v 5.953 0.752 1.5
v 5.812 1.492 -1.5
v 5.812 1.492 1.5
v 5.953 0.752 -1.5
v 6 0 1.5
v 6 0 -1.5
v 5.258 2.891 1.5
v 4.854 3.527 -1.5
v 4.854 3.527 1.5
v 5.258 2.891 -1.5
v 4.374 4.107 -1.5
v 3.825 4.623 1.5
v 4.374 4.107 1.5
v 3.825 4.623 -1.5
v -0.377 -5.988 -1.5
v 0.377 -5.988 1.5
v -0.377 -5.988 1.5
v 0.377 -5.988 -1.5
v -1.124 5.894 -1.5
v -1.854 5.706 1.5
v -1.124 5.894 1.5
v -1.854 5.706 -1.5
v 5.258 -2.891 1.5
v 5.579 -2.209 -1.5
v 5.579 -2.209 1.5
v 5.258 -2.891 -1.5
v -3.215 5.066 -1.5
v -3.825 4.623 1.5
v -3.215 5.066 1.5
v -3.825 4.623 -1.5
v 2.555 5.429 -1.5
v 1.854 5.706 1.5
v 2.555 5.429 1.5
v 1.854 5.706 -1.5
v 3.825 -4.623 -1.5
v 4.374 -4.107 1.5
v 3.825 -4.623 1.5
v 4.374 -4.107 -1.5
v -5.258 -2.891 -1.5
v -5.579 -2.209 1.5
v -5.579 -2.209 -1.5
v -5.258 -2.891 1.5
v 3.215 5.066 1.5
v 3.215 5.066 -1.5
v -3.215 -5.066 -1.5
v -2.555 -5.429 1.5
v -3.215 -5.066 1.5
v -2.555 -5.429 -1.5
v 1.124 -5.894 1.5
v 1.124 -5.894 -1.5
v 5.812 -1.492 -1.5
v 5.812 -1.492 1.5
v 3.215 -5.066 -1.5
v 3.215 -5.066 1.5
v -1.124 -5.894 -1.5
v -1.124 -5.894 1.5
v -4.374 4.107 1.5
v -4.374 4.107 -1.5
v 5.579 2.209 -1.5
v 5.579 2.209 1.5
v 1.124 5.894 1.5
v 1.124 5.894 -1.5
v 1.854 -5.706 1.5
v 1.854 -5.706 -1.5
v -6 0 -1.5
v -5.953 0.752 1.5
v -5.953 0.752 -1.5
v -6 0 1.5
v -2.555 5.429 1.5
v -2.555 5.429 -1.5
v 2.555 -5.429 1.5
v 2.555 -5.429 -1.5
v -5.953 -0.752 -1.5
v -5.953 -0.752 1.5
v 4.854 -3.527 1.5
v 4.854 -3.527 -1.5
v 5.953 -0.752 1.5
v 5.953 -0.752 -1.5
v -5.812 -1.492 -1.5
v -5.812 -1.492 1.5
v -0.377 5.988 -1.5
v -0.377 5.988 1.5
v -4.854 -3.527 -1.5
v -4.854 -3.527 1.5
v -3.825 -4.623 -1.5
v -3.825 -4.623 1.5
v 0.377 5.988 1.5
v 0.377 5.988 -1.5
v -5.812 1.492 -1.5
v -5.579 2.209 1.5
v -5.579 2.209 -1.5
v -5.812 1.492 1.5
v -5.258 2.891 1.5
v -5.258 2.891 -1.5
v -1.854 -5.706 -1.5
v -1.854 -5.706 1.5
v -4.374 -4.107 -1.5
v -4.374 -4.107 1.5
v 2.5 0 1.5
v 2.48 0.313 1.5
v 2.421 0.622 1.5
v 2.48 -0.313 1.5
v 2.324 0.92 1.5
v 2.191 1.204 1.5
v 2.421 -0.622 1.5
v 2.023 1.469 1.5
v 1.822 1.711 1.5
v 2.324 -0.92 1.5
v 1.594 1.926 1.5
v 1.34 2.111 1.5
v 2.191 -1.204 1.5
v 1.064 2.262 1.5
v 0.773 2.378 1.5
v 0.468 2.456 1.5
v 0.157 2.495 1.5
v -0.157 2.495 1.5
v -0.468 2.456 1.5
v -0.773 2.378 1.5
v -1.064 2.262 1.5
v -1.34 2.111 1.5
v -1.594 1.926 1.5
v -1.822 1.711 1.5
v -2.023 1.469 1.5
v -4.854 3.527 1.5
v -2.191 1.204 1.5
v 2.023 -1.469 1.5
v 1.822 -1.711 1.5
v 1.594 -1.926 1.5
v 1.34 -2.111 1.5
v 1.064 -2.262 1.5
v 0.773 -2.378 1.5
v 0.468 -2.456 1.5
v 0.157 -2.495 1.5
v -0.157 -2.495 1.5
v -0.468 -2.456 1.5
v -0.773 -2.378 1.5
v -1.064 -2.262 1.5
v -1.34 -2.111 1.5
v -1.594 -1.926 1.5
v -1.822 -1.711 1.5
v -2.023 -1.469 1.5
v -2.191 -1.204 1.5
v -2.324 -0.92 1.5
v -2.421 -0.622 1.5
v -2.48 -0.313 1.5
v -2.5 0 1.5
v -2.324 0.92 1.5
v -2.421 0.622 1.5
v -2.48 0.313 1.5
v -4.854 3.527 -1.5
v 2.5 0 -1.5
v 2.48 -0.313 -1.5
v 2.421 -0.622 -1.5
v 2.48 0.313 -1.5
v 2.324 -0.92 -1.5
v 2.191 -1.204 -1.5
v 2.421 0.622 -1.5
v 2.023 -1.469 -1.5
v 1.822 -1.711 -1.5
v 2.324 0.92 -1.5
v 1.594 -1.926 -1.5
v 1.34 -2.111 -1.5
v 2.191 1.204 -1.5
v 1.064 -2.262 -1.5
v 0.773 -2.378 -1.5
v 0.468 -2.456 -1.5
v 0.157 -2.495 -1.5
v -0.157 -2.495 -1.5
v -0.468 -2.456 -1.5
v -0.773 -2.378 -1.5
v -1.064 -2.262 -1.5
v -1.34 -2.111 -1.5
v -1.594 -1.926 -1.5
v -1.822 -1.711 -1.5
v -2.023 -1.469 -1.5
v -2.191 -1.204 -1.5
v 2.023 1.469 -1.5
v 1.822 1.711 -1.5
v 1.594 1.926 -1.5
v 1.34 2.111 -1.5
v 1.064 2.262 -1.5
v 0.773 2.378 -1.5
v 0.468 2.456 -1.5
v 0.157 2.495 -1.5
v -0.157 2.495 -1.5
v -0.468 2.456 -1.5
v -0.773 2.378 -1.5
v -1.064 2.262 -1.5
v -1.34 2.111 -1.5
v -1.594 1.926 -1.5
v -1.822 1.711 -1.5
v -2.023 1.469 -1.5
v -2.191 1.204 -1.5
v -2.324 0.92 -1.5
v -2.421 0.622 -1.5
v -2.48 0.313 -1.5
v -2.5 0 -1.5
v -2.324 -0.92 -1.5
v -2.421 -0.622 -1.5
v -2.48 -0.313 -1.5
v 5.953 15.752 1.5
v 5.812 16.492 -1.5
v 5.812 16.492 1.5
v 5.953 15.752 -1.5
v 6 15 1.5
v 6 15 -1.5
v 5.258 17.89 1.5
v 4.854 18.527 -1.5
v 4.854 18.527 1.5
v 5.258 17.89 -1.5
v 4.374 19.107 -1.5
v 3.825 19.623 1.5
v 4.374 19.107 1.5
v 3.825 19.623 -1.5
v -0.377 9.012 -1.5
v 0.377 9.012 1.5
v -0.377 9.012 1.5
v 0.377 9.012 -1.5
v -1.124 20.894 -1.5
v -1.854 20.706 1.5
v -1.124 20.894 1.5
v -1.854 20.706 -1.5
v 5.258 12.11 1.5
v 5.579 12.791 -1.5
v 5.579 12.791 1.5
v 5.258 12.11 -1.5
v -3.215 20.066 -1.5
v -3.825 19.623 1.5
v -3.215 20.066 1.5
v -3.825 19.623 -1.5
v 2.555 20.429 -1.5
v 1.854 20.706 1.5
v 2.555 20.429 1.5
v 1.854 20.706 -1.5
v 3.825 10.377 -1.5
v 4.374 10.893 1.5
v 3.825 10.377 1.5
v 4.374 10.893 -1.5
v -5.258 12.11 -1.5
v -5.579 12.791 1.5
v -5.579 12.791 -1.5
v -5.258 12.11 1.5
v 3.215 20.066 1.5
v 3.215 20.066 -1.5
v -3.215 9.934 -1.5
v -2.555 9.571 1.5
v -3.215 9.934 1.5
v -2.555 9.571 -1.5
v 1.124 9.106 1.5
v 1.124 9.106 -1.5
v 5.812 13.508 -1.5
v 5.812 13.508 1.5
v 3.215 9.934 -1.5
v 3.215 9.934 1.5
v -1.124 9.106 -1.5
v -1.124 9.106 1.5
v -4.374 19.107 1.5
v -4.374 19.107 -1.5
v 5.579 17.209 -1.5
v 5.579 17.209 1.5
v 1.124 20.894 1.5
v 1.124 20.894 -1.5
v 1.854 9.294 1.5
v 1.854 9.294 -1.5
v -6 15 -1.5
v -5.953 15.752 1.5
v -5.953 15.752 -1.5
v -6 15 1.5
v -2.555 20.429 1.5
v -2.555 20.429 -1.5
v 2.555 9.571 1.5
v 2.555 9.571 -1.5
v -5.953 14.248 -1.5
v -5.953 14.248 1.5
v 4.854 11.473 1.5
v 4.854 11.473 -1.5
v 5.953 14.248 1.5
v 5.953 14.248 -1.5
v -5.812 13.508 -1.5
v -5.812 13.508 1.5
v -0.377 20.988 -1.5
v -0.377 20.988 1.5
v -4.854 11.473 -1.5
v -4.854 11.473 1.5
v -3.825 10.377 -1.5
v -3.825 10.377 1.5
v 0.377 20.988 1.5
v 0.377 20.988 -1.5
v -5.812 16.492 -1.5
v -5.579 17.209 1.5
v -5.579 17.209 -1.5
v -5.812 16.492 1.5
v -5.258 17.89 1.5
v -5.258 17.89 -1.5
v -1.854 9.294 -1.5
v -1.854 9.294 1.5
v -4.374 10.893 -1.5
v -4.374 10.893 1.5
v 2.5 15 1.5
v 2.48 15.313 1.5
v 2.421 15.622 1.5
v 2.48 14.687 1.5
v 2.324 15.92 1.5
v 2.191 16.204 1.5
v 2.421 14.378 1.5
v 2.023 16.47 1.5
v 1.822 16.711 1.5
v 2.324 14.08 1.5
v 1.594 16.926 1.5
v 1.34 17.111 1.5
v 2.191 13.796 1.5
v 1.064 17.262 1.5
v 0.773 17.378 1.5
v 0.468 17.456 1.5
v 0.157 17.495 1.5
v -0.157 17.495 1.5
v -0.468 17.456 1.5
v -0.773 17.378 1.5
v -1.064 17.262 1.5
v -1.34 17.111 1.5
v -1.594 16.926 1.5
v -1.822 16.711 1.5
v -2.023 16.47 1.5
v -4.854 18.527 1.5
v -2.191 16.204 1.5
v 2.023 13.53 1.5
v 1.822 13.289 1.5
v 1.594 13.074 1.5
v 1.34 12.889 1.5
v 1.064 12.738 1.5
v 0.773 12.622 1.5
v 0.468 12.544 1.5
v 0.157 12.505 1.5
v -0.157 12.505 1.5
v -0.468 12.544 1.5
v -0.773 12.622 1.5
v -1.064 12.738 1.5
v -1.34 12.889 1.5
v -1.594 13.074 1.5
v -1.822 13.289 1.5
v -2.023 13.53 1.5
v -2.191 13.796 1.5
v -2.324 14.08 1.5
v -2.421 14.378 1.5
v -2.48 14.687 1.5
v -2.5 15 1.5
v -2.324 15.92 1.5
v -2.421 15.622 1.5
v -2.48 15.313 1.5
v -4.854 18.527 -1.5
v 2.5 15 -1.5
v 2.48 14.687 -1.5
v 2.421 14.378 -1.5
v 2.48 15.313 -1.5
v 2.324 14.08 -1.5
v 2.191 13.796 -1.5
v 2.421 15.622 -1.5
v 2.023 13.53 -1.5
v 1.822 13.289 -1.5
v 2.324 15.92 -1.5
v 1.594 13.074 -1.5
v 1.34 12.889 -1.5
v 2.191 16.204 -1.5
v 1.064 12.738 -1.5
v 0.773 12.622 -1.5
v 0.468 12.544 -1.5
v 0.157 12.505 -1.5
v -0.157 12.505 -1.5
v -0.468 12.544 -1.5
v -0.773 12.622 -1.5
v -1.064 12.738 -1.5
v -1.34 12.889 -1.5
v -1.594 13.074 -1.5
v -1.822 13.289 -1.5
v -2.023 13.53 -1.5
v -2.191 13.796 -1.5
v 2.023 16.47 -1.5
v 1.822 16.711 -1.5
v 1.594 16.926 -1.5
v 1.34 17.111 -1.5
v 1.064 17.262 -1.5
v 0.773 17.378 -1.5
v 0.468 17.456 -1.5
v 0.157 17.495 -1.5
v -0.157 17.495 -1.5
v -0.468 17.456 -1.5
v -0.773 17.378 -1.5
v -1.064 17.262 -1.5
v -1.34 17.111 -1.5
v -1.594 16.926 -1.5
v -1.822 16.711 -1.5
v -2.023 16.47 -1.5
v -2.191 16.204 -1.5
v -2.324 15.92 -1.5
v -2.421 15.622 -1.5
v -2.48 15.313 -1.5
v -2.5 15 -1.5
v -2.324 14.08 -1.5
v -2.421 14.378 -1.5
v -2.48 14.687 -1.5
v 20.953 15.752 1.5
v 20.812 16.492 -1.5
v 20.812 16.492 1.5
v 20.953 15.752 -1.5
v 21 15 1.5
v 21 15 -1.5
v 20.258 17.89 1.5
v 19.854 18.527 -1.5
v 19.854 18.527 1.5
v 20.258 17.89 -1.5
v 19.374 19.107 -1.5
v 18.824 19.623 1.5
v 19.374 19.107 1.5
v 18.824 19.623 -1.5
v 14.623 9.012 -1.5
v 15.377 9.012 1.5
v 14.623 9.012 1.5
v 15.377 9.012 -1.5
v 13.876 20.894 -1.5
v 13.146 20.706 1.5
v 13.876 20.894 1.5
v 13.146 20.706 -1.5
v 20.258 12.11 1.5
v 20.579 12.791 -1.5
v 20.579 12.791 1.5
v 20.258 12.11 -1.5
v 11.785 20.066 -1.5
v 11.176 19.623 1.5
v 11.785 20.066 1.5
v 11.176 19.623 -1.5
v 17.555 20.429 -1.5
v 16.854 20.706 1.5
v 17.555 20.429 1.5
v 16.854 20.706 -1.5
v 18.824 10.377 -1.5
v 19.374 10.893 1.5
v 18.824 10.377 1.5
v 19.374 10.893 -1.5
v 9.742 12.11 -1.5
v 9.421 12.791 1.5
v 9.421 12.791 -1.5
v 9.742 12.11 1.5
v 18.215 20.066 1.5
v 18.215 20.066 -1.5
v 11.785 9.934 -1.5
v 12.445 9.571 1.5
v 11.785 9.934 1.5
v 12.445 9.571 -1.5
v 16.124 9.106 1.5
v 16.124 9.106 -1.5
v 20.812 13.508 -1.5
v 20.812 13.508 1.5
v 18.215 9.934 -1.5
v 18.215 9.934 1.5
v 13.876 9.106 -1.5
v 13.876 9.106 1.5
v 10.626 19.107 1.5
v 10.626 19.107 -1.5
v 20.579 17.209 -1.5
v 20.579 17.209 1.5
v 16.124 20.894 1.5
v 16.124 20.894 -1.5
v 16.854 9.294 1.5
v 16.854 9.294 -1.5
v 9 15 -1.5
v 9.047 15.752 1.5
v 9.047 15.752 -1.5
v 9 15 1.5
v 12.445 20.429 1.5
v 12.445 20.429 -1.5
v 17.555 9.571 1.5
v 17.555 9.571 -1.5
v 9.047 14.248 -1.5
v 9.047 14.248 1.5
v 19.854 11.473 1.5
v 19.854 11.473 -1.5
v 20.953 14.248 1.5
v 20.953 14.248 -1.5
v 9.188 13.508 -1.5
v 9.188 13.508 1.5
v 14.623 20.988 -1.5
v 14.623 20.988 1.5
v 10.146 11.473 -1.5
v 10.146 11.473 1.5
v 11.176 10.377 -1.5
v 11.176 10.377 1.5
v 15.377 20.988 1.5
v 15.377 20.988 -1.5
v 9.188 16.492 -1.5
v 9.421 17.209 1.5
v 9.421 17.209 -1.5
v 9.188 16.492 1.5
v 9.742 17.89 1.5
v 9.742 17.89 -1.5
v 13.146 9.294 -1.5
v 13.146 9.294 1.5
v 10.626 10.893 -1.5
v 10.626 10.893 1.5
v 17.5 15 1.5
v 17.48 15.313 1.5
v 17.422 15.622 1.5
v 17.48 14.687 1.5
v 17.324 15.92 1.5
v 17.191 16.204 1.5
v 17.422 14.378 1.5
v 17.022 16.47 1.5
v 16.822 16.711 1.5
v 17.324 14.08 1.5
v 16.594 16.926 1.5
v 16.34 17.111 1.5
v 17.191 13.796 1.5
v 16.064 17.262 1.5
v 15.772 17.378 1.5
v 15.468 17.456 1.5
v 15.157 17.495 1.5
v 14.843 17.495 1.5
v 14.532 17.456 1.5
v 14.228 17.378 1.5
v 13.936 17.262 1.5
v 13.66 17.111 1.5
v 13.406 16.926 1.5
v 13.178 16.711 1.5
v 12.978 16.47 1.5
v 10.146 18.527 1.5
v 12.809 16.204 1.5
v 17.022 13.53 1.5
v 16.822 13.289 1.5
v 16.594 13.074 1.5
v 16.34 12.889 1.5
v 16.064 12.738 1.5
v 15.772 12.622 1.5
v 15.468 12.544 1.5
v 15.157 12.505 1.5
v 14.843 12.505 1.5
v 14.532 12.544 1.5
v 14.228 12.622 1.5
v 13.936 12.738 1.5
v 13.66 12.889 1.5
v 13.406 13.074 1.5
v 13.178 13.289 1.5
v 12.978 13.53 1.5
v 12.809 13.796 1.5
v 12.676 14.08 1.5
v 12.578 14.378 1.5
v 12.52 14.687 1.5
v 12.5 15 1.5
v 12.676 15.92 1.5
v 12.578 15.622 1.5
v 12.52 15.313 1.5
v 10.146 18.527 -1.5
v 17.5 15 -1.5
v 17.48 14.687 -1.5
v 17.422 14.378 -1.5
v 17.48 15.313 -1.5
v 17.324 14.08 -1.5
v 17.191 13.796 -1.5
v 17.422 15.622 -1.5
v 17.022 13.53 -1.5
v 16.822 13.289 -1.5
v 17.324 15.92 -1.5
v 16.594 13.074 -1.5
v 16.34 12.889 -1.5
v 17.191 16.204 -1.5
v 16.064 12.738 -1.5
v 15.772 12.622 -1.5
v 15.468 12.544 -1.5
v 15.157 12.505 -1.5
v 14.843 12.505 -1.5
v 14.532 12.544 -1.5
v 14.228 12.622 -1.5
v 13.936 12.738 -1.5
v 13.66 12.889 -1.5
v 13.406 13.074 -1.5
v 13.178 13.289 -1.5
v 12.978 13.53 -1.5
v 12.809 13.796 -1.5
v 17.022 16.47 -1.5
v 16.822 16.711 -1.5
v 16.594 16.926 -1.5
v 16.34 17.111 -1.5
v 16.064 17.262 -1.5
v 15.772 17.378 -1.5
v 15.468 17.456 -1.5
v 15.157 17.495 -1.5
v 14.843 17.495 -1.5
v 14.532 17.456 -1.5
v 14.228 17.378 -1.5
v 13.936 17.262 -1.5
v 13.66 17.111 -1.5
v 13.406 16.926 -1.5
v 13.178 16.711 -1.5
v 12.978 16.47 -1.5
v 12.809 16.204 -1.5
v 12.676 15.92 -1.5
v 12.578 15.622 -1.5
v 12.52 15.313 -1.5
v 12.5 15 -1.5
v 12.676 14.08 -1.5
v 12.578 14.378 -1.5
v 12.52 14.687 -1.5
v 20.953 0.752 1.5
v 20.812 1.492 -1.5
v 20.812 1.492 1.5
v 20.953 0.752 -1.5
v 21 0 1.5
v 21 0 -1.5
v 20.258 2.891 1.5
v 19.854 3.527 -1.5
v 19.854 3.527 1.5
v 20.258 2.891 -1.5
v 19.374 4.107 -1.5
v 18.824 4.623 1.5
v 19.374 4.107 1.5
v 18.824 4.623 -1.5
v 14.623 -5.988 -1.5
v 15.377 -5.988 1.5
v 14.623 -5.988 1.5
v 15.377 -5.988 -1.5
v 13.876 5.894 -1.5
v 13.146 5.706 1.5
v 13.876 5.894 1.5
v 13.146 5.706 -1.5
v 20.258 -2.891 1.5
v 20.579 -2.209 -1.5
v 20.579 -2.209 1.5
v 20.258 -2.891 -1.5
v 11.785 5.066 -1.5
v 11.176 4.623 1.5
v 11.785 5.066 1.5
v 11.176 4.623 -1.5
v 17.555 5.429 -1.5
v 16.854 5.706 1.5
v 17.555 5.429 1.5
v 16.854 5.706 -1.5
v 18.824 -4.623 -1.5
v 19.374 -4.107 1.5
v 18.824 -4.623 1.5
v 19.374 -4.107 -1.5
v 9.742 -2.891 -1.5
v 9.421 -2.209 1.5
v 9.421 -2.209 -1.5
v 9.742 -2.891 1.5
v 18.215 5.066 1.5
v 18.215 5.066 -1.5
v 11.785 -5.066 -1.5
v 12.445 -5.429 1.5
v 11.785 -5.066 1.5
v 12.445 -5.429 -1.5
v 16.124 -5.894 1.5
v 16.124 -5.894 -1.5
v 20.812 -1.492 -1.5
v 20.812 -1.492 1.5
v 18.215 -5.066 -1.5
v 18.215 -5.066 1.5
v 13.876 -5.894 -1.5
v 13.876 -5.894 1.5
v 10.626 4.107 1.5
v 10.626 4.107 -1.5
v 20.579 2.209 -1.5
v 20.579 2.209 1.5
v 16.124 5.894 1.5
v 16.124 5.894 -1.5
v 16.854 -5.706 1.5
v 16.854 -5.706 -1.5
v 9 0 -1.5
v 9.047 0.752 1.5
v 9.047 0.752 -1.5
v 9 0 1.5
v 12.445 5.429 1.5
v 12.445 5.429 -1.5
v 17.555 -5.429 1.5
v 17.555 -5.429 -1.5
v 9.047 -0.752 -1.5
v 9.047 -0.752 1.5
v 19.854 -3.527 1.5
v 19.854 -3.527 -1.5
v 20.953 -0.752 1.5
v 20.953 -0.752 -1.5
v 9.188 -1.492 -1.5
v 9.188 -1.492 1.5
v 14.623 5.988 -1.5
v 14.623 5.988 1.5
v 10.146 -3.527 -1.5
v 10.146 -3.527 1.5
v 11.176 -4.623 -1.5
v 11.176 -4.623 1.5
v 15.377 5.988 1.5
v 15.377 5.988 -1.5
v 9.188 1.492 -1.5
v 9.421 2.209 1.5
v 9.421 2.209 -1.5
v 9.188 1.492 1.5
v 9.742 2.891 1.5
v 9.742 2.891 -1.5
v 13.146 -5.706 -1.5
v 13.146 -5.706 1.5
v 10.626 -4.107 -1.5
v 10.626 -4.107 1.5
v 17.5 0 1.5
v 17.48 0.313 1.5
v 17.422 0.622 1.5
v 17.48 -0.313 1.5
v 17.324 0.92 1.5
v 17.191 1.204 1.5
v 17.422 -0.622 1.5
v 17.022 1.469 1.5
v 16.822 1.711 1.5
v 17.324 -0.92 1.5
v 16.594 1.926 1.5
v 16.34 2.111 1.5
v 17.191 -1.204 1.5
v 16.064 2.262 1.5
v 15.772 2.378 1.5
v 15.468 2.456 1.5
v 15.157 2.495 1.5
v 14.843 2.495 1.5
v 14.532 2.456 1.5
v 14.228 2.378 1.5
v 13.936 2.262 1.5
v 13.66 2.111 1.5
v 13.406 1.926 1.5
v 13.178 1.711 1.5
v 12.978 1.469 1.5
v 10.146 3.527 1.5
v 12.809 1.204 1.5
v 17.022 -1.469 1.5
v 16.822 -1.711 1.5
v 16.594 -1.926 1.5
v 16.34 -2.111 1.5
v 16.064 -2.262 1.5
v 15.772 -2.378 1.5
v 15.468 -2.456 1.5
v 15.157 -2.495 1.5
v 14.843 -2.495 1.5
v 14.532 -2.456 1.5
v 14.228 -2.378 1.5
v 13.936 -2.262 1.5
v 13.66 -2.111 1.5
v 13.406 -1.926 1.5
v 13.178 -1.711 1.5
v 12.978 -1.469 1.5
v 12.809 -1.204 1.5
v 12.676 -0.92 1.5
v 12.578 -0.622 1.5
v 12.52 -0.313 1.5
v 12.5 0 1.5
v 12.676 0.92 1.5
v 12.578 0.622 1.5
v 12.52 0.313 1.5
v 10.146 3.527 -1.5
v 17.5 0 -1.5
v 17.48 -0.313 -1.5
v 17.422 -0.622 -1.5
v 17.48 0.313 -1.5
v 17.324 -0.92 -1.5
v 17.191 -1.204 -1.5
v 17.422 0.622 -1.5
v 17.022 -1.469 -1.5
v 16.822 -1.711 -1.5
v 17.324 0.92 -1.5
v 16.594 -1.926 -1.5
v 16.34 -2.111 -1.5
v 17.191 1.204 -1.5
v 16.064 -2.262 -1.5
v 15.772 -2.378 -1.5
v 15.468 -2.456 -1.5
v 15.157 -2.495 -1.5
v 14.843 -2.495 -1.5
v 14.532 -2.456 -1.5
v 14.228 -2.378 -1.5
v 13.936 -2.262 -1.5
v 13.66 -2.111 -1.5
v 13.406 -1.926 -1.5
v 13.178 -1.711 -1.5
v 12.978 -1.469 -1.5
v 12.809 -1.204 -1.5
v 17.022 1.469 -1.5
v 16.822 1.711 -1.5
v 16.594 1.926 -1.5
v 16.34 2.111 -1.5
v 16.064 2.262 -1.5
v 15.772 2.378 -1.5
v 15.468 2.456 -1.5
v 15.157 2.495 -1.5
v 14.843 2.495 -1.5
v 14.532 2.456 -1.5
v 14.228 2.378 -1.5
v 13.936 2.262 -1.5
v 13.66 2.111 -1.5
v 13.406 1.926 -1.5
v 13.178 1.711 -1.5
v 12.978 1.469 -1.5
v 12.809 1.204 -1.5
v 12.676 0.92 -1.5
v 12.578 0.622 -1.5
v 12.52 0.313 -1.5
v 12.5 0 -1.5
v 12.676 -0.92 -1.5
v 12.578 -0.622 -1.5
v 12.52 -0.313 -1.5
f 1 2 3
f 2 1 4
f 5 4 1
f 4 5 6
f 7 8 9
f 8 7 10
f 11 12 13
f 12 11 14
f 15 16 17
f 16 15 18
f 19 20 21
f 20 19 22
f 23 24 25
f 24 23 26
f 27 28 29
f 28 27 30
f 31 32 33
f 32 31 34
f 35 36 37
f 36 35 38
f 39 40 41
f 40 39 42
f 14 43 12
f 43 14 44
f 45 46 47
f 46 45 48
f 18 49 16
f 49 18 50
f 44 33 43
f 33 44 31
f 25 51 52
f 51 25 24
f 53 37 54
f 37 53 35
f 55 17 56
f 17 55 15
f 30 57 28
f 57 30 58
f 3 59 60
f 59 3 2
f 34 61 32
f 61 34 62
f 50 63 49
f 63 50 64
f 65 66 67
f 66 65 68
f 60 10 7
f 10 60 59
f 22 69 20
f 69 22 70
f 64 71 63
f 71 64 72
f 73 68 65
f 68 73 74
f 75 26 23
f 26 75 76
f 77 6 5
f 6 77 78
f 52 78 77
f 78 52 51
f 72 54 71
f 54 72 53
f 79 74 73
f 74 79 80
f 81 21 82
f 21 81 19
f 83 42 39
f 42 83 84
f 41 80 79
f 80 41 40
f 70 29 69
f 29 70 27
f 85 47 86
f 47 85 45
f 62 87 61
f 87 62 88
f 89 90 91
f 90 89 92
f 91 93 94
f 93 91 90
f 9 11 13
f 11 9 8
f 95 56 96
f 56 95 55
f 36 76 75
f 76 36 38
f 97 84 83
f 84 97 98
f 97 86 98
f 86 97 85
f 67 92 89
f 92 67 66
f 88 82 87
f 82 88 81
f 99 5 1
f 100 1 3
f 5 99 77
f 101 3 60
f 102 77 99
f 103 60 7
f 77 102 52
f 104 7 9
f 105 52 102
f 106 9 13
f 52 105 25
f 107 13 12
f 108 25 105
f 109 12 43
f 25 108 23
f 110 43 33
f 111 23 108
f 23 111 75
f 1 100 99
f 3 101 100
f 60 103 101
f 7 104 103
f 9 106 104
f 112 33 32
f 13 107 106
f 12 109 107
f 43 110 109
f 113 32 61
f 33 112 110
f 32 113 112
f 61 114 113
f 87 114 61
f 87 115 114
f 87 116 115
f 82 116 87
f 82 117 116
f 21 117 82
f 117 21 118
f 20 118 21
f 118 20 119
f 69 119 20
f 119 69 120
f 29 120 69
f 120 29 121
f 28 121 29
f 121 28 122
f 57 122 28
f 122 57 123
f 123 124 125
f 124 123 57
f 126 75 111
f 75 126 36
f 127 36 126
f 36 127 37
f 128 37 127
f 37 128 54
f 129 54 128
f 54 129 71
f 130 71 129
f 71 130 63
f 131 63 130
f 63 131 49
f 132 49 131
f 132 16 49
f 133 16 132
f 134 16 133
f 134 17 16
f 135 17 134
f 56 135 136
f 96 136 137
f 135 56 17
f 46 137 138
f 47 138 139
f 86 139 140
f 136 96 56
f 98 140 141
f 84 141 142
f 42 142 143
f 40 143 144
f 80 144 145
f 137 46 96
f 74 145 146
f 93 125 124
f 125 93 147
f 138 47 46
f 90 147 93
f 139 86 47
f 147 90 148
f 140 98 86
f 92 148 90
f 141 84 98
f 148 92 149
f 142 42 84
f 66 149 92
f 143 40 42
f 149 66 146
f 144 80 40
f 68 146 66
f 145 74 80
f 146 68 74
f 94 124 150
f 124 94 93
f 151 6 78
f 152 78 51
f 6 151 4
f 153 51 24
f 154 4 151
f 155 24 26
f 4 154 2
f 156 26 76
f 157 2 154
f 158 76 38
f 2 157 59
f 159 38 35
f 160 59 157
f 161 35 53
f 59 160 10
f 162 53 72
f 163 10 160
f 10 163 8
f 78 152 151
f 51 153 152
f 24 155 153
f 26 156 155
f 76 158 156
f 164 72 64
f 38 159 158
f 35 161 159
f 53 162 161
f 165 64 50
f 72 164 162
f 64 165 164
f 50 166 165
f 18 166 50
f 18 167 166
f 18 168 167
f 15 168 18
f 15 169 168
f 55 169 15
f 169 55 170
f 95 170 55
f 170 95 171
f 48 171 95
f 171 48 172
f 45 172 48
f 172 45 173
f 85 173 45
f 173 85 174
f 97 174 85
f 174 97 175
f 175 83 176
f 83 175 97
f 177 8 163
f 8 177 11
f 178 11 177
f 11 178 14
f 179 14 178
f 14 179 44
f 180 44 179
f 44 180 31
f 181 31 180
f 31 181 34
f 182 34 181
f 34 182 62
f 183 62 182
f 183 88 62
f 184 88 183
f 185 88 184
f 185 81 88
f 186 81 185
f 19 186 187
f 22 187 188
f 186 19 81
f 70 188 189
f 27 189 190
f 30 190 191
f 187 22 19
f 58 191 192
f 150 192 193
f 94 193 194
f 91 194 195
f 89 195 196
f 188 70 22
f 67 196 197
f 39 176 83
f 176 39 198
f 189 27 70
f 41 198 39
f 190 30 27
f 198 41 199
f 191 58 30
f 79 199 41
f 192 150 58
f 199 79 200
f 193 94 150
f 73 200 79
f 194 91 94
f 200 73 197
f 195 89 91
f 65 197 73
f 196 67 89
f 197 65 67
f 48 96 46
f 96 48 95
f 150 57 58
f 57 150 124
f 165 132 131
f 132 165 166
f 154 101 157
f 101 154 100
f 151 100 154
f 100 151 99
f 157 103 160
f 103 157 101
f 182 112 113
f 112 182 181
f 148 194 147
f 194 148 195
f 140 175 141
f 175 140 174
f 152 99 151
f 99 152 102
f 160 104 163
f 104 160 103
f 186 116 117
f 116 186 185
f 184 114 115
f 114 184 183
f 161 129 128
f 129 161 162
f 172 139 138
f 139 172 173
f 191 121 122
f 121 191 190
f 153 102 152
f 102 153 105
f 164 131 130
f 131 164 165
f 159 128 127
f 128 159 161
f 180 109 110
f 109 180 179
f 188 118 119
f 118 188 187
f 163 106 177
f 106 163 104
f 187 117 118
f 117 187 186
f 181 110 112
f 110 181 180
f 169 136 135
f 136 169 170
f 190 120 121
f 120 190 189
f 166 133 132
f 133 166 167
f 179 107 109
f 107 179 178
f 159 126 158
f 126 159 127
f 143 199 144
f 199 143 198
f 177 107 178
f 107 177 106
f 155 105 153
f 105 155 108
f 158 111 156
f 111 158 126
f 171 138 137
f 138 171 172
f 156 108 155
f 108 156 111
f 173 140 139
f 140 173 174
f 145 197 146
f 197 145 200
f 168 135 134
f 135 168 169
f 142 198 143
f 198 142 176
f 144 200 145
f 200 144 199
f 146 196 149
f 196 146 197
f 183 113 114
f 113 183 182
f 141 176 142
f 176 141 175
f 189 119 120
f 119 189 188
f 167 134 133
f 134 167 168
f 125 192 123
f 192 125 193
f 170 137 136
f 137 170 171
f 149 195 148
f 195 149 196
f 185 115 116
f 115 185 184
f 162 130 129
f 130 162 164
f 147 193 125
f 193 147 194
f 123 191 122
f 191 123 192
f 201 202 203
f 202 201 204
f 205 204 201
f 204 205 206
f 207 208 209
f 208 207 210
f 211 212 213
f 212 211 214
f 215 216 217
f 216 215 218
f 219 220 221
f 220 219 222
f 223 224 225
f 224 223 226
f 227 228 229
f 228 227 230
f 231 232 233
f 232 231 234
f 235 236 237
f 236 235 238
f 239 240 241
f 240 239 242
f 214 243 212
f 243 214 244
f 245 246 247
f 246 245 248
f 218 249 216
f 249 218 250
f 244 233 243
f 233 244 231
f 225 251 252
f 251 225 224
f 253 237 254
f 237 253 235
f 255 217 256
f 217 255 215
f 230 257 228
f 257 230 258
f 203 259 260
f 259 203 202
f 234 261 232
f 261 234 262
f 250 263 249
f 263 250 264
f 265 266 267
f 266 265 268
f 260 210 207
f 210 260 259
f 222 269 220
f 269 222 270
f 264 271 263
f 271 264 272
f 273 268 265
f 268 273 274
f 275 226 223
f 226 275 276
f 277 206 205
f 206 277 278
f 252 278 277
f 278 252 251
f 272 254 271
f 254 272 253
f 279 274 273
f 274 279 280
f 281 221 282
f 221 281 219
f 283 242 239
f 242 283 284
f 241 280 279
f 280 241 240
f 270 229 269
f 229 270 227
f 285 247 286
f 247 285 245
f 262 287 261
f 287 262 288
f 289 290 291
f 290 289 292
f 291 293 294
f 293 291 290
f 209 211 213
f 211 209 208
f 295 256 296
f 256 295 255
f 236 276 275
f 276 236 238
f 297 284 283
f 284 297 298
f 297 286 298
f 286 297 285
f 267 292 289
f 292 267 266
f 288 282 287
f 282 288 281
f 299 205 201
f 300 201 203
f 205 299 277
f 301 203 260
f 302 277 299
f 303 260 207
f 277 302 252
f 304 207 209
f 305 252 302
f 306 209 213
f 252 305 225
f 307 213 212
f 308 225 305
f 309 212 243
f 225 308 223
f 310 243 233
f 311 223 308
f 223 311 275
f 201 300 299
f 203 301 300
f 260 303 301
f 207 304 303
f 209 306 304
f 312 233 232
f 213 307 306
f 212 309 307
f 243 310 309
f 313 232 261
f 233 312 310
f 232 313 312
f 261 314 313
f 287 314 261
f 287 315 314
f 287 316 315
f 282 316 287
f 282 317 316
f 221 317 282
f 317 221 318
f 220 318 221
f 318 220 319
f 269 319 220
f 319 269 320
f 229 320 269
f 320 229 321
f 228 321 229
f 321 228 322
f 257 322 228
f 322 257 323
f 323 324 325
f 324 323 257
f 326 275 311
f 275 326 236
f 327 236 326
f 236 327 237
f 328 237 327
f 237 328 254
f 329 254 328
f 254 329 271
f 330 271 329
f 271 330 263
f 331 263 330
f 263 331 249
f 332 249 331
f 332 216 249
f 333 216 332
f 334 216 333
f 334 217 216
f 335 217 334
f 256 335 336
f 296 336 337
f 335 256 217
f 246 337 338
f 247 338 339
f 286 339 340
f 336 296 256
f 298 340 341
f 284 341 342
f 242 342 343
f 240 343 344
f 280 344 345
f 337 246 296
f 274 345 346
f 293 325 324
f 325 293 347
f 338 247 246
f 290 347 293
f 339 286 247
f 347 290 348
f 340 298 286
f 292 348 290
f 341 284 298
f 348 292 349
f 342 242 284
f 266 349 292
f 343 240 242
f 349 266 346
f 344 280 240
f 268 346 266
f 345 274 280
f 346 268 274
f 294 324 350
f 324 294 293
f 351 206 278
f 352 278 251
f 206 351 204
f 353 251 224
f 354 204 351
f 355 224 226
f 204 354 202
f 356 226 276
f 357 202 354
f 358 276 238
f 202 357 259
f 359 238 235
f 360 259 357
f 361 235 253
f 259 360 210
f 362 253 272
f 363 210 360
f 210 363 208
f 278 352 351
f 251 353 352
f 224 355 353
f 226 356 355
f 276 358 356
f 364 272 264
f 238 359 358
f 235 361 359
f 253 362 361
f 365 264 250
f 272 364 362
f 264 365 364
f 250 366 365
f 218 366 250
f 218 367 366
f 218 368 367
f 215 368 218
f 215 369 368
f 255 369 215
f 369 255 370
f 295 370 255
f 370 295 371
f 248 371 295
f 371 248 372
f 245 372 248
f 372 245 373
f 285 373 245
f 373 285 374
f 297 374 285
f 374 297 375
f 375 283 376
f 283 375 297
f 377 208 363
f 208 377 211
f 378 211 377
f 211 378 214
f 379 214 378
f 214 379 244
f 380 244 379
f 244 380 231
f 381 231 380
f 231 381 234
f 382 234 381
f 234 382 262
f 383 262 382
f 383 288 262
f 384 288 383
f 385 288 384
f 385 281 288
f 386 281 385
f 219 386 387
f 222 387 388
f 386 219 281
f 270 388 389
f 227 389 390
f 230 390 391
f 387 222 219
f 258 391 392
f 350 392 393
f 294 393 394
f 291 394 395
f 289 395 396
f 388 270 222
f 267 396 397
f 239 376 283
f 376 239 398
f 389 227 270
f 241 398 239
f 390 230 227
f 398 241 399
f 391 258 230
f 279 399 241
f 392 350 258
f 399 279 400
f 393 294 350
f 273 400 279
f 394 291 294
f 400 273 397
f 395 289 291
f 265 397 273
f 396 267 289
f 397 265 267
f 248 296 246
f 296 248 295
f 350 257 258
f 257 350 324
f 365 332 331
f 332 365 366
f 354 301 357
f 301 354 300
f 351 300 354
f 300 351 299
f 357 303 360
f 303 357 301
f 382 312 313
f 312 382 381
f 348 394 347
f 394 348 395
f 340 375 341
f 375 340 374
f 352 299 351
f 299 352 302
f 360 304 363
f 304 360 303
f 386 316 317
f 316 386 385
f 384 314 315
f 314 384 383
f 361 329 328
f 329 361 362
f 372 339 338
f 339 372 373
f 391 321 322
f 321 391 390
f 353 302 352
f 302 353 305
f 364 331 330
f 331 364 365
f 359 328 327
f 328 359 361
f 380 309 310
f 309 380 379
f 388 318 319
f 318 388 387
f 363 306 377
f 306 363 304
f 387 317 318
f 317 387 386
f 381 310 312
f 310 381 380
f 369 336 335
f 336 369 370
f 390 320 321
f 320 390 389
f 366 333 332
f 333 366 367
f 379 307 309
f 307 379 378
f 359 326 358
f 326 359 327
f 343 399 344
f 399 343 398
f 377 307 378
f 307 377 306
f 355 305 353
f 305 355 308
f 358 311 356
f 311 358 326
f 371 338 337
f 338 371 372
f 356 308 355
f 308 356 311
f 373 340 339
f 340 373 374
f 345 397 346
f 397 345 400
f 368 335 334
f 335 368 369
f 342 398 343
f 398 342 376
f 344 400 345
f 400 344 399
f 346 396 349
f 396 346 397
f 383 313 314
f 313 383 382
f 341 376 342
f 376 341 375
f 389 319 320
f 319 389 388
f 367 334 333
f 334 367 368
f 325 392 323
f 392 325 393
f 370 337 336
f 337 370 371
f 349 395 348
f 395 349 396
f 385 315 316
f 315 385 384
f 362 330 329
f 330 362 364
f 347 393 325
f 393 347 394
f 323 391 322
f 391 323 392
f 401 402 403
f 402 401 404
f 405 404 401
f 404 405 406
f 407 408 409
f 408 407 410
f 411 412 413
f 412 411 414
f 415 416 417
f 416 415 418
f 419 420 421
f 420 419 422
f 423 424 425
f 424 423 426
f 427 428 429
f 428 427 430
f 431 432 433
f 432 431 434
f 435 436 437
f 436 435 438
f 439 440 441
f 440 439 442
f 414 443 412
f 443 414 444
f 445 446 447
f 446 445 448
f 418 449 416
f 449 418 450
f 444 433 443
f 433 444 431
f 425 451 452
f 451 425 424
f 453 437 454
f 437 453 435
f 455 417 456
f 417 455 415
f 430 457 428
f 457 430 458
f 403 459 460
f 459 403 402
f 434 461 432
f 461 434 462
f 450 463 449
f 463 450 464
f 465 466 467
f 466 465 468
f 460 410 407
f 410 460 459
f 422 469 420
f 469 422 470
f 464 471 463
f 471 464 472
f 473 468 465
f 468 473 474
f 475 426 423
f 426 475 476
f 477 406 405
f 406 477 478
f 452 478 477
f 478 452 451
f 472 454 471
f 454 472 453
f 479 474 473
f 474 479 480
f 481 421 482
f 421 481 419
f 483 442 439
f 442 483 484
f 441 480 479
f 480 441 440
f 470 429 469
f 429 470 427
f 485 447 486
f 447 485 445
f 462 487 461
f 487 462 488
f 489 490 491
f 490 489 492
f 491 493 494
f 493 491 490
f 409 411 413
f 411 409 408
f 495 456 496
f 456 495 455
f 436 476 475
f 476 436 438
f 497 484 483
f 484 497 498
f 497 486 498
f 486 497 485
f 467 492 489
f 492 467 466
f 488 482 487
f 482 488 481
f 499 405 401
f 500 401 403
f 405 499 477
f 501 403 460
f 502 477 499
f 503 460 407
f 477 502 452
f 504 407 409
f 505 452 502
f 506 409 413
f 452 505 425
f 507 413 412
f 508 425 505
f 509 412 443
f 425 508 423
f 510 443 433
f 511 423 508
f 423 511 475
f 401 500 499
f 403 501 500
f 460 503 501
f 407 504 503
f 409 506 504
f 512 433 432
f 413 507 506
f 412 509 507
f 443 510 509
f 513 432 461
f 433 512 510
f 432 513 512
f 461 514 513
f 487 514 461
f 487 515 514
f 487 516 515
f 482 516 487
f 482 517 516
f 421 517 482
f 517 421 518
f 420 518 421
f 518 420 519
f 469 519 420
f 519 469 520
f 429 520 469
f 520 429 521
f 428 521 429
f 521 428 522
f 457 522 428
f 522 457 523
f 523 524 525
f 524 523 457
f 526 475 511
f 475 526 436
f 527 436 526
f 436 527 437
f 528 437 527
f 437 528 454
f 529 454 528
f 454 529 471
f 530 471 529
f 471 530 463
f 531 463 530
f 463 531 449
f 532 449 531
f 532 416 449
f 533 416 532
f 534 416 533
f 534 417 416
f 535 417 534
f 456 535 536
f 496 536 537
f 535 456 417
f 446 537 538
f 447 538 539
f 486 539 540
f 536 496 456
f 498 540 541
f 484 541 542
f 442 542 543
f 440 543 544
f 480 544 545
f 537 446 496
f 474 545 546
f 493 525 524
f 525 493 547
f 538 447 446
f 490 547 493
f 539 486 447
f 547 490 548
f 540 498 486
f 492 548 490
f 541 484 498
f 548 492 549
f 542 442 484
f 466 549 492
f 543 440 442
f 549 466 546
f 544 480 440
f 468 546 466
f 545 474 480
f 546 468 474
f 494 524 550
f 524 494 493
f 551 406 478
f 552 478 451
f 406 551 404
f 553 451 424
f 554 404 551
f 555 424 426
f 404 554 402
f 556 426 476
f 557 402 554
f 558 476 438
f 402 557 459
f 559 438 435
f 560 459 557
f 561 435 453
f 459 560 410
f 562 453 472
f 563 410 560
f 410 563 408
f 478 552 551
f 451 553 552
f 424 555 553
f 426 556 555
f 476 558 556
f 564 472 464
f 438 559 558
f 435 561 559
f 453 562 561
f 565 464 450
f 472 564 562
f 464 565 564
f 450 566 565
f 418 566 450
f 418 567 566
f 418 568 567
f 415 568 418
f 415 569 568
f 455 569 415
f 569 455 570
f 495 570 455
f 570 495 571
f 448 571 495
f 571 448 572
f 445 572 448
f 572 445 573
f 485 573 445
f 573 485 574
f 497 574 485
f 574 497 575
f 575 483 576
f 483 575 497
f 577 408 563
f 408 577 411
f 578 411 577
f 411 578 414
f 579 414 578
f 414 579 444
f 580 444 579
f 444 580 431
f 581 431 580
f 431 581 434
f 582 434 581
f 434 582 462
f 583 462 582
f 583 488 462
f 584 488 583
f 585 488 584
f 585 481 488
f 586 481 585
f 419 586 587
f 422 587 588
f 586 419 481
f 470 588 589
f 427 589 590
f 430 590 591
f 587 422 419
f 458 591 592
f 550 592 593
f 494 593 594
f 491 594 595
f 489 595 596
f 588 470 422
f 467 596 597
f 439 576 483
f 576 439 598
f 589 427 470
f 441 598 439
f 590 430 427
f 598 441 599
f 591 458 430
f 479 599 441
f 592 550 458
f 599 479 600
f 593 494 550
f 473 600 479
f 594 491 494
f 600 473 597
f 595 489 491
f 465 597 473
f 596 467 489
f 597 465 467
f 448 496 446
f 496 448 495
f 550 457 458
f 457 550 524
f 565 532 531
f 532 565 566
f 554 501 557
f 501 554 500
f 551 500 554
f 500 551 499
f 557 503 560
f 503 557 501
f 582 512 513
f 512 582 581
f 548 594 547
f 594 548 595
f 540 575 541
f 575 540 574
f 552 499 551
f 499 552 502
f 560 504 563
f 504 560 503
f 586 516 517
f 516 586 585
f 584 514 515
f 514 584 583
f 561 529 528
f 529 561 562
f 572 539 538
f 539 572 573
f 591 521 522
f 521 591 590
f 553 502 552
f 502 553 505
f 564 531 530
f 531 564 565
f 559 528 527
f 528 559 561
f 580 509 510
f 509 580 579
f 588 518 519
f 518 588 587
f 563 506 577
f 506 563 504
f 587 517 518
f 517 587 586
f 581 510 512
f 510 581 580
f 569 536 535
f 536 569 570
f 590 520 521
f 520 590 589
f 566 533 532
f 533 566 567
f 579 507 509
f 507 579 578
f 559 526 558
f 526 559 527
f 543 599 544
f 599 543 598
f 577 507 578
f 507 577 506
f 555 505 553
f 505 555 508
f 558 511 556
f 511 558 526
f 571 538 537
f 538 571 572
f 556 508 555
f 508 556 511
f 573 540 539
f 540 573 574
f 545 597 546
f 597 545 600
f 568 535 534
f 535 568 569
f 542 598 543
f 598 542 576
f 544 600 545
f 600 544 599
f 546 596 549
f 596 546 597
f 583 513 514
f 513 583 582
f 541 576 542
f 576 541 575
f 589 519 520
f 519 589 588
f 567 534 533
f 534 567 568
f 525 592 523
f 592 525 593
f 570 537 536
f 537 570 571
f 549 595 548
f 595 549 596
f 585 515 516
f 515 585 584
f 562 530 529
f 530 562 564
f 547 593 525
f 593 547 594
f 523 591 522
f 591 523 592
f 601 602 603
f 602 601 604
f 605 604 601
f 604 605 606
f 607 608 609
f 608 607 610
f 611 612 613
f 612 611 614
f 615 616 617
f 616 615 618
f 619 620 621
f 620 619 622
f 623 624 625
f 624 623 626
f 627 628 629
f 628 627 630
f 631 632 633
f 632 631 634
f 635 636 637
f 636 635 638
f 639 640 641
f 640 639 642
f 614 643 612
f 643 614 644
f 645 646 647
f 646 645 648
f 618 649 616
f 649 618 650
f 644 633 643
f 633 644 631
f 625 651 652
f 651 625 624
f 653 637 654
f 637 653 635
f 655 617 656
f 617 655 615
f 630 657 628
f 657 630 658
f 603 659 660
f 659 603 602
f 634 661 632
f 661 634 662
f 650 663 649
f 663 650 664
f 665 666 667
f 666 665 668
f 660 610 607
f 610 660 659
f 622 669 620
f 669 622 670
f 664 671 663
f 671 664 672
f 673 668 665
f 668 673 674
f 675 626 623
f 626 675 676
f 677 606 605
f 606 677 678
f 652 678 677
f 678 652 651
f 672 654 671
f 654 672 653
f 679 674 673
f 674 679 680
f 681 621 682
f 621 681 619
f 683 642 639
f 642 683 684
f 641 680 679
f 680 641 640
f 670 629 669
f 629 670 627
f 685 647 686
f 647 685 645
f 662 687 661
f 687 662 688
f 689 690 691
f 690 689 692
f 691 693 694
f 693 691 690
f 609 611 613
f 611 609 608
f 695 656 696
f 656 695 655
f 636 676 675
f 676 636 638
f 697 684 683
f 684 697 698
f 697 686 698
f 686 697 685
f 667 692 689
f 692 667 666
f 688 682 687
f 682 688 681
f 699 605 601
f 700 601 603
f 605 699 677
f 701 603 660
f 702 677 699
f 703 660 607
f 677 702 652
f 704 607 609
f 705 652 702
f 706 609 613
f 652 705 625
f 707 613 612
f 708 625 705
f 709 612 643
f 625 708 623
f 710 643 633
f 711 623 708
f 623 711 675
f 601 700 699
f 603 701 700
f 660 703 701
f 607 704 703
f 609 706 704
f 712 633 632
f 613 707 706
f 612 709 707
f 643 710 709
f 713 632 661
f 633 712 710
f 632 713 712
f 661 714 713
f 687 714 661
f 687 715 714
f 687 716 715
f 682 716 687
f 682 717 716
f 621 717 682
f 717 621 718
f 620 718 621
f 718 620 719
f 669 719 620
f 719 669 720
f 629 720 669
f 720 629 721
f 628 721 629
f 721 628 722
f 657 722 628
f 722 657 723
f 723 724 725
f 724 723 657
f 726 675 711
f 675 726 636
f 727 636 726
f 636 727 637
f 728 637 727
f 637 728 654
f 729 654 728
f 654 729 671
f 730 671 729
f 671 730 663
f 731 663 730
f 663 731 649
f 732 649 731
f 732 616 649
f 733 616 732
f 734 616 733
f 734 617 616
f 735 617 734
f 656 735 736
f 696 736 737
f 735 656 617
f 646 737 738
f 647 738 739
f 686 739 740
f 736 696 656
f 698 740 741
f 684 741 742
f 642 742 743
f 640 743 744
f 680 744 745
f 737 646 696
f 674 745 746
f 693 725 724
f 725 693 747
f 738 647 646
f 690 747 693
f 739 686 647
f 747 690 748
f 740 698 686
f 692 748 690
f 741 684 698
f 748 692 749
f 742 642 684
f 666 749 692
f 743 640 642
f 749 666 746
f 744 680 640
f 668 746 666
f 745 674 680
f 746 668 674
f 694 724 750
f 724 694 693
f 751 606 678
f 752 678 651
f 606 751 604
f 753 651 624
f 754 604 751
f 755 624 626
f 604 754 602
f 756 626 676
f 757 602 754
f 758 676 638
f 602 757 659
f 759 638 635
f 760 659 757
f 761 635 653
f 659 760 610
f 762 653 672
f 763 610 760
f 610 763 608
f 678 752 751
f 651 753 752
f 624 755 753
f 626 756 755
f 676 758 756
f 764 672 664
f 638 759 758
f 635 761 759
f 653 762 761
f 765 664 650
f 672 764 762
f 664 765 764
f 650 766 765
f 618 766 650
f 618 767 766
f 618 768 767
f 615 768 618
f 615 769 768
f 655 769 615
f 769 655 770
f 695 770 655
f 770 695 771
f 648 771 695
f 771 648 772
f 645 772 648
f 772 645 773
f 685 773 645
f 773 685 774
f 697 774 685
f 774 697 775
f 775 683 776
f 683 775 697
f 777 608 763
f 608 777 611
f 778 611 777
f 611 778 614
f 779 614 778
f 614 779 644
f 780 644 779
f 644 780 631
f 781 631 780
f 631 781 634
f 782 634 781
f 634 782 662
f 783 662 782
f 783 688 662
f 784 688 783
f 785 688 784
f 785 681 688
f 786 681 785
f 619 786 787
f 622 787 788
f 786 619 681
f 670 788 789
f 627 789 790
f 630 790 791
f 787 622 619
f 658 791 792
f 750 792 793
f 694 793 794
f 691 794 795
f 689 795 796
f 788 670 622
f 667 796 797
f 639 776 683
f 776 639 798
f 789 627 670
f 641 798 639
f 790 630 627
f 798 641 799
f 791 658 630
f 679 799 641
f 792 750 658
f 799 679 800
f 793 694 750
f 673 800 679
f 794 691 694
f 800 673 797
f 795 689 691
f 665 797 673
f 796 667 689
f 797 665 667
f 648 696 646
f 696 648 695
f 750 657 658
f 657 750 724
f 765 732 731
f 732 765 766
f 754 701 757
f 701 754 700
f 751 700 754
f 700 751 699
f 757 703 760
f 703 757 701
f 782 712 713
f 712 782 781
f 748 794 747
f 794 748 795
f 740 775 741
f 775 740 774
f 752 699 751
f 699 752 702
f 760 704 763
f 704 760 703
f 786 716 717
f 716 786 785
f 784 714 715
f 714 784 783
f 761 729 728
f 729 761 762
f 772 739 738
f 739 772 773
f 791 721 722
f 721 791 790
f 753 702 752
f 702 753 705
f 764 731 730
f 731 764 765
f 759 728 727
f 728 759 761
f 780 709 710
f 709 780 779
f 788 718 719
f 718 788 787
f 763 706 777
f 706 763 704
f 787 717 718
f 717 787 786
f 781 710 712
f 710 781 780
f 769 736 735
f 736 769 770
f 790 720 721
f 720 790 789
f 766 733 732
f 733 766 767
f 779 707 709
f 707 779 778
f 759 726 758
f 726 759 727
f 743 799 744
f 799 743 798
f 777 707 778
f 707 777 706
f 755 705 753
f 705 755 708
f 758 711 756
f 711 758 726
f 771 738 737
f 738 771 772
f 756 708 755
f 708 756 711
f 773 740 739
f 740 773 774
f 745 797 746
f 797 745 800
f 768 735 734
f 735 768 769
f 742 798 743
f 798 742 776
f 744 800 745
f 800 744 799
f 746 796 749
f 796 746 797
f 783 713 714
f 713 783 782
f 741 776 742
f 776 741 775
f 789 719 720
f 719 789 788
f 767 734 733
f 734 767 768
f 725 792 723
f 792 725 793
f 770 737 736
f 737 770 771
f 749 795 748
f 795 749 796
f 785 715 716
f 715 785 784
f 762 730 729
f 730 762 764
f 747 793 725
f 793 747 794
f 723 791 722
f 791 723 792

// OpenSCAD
$fn=50;

translate([0, 0, 0]) {
  difference() {
    cylinder(r=6, h=3, center=true);
    cylinder(r=2.5, h=7, center=true);
  }
}
translate([0, 15, 0]) {
  difference() {
    cylinder(r=6, h=3, center=true);
    cylinder(r=2.5, h=7, center=true);
  }
}
translate([15, 15, 0]) {
  difference() {
    cylinder(r=6, h=3, center=true);
    cylinder(r=2.5, h=7, center=true);
  }
}
translate([15, 0, 0]) {
  difference() {
    cylinder(r=6, h=3, center=true);
    cylinder(r=2.5, h=7, center=true);
  }
}
